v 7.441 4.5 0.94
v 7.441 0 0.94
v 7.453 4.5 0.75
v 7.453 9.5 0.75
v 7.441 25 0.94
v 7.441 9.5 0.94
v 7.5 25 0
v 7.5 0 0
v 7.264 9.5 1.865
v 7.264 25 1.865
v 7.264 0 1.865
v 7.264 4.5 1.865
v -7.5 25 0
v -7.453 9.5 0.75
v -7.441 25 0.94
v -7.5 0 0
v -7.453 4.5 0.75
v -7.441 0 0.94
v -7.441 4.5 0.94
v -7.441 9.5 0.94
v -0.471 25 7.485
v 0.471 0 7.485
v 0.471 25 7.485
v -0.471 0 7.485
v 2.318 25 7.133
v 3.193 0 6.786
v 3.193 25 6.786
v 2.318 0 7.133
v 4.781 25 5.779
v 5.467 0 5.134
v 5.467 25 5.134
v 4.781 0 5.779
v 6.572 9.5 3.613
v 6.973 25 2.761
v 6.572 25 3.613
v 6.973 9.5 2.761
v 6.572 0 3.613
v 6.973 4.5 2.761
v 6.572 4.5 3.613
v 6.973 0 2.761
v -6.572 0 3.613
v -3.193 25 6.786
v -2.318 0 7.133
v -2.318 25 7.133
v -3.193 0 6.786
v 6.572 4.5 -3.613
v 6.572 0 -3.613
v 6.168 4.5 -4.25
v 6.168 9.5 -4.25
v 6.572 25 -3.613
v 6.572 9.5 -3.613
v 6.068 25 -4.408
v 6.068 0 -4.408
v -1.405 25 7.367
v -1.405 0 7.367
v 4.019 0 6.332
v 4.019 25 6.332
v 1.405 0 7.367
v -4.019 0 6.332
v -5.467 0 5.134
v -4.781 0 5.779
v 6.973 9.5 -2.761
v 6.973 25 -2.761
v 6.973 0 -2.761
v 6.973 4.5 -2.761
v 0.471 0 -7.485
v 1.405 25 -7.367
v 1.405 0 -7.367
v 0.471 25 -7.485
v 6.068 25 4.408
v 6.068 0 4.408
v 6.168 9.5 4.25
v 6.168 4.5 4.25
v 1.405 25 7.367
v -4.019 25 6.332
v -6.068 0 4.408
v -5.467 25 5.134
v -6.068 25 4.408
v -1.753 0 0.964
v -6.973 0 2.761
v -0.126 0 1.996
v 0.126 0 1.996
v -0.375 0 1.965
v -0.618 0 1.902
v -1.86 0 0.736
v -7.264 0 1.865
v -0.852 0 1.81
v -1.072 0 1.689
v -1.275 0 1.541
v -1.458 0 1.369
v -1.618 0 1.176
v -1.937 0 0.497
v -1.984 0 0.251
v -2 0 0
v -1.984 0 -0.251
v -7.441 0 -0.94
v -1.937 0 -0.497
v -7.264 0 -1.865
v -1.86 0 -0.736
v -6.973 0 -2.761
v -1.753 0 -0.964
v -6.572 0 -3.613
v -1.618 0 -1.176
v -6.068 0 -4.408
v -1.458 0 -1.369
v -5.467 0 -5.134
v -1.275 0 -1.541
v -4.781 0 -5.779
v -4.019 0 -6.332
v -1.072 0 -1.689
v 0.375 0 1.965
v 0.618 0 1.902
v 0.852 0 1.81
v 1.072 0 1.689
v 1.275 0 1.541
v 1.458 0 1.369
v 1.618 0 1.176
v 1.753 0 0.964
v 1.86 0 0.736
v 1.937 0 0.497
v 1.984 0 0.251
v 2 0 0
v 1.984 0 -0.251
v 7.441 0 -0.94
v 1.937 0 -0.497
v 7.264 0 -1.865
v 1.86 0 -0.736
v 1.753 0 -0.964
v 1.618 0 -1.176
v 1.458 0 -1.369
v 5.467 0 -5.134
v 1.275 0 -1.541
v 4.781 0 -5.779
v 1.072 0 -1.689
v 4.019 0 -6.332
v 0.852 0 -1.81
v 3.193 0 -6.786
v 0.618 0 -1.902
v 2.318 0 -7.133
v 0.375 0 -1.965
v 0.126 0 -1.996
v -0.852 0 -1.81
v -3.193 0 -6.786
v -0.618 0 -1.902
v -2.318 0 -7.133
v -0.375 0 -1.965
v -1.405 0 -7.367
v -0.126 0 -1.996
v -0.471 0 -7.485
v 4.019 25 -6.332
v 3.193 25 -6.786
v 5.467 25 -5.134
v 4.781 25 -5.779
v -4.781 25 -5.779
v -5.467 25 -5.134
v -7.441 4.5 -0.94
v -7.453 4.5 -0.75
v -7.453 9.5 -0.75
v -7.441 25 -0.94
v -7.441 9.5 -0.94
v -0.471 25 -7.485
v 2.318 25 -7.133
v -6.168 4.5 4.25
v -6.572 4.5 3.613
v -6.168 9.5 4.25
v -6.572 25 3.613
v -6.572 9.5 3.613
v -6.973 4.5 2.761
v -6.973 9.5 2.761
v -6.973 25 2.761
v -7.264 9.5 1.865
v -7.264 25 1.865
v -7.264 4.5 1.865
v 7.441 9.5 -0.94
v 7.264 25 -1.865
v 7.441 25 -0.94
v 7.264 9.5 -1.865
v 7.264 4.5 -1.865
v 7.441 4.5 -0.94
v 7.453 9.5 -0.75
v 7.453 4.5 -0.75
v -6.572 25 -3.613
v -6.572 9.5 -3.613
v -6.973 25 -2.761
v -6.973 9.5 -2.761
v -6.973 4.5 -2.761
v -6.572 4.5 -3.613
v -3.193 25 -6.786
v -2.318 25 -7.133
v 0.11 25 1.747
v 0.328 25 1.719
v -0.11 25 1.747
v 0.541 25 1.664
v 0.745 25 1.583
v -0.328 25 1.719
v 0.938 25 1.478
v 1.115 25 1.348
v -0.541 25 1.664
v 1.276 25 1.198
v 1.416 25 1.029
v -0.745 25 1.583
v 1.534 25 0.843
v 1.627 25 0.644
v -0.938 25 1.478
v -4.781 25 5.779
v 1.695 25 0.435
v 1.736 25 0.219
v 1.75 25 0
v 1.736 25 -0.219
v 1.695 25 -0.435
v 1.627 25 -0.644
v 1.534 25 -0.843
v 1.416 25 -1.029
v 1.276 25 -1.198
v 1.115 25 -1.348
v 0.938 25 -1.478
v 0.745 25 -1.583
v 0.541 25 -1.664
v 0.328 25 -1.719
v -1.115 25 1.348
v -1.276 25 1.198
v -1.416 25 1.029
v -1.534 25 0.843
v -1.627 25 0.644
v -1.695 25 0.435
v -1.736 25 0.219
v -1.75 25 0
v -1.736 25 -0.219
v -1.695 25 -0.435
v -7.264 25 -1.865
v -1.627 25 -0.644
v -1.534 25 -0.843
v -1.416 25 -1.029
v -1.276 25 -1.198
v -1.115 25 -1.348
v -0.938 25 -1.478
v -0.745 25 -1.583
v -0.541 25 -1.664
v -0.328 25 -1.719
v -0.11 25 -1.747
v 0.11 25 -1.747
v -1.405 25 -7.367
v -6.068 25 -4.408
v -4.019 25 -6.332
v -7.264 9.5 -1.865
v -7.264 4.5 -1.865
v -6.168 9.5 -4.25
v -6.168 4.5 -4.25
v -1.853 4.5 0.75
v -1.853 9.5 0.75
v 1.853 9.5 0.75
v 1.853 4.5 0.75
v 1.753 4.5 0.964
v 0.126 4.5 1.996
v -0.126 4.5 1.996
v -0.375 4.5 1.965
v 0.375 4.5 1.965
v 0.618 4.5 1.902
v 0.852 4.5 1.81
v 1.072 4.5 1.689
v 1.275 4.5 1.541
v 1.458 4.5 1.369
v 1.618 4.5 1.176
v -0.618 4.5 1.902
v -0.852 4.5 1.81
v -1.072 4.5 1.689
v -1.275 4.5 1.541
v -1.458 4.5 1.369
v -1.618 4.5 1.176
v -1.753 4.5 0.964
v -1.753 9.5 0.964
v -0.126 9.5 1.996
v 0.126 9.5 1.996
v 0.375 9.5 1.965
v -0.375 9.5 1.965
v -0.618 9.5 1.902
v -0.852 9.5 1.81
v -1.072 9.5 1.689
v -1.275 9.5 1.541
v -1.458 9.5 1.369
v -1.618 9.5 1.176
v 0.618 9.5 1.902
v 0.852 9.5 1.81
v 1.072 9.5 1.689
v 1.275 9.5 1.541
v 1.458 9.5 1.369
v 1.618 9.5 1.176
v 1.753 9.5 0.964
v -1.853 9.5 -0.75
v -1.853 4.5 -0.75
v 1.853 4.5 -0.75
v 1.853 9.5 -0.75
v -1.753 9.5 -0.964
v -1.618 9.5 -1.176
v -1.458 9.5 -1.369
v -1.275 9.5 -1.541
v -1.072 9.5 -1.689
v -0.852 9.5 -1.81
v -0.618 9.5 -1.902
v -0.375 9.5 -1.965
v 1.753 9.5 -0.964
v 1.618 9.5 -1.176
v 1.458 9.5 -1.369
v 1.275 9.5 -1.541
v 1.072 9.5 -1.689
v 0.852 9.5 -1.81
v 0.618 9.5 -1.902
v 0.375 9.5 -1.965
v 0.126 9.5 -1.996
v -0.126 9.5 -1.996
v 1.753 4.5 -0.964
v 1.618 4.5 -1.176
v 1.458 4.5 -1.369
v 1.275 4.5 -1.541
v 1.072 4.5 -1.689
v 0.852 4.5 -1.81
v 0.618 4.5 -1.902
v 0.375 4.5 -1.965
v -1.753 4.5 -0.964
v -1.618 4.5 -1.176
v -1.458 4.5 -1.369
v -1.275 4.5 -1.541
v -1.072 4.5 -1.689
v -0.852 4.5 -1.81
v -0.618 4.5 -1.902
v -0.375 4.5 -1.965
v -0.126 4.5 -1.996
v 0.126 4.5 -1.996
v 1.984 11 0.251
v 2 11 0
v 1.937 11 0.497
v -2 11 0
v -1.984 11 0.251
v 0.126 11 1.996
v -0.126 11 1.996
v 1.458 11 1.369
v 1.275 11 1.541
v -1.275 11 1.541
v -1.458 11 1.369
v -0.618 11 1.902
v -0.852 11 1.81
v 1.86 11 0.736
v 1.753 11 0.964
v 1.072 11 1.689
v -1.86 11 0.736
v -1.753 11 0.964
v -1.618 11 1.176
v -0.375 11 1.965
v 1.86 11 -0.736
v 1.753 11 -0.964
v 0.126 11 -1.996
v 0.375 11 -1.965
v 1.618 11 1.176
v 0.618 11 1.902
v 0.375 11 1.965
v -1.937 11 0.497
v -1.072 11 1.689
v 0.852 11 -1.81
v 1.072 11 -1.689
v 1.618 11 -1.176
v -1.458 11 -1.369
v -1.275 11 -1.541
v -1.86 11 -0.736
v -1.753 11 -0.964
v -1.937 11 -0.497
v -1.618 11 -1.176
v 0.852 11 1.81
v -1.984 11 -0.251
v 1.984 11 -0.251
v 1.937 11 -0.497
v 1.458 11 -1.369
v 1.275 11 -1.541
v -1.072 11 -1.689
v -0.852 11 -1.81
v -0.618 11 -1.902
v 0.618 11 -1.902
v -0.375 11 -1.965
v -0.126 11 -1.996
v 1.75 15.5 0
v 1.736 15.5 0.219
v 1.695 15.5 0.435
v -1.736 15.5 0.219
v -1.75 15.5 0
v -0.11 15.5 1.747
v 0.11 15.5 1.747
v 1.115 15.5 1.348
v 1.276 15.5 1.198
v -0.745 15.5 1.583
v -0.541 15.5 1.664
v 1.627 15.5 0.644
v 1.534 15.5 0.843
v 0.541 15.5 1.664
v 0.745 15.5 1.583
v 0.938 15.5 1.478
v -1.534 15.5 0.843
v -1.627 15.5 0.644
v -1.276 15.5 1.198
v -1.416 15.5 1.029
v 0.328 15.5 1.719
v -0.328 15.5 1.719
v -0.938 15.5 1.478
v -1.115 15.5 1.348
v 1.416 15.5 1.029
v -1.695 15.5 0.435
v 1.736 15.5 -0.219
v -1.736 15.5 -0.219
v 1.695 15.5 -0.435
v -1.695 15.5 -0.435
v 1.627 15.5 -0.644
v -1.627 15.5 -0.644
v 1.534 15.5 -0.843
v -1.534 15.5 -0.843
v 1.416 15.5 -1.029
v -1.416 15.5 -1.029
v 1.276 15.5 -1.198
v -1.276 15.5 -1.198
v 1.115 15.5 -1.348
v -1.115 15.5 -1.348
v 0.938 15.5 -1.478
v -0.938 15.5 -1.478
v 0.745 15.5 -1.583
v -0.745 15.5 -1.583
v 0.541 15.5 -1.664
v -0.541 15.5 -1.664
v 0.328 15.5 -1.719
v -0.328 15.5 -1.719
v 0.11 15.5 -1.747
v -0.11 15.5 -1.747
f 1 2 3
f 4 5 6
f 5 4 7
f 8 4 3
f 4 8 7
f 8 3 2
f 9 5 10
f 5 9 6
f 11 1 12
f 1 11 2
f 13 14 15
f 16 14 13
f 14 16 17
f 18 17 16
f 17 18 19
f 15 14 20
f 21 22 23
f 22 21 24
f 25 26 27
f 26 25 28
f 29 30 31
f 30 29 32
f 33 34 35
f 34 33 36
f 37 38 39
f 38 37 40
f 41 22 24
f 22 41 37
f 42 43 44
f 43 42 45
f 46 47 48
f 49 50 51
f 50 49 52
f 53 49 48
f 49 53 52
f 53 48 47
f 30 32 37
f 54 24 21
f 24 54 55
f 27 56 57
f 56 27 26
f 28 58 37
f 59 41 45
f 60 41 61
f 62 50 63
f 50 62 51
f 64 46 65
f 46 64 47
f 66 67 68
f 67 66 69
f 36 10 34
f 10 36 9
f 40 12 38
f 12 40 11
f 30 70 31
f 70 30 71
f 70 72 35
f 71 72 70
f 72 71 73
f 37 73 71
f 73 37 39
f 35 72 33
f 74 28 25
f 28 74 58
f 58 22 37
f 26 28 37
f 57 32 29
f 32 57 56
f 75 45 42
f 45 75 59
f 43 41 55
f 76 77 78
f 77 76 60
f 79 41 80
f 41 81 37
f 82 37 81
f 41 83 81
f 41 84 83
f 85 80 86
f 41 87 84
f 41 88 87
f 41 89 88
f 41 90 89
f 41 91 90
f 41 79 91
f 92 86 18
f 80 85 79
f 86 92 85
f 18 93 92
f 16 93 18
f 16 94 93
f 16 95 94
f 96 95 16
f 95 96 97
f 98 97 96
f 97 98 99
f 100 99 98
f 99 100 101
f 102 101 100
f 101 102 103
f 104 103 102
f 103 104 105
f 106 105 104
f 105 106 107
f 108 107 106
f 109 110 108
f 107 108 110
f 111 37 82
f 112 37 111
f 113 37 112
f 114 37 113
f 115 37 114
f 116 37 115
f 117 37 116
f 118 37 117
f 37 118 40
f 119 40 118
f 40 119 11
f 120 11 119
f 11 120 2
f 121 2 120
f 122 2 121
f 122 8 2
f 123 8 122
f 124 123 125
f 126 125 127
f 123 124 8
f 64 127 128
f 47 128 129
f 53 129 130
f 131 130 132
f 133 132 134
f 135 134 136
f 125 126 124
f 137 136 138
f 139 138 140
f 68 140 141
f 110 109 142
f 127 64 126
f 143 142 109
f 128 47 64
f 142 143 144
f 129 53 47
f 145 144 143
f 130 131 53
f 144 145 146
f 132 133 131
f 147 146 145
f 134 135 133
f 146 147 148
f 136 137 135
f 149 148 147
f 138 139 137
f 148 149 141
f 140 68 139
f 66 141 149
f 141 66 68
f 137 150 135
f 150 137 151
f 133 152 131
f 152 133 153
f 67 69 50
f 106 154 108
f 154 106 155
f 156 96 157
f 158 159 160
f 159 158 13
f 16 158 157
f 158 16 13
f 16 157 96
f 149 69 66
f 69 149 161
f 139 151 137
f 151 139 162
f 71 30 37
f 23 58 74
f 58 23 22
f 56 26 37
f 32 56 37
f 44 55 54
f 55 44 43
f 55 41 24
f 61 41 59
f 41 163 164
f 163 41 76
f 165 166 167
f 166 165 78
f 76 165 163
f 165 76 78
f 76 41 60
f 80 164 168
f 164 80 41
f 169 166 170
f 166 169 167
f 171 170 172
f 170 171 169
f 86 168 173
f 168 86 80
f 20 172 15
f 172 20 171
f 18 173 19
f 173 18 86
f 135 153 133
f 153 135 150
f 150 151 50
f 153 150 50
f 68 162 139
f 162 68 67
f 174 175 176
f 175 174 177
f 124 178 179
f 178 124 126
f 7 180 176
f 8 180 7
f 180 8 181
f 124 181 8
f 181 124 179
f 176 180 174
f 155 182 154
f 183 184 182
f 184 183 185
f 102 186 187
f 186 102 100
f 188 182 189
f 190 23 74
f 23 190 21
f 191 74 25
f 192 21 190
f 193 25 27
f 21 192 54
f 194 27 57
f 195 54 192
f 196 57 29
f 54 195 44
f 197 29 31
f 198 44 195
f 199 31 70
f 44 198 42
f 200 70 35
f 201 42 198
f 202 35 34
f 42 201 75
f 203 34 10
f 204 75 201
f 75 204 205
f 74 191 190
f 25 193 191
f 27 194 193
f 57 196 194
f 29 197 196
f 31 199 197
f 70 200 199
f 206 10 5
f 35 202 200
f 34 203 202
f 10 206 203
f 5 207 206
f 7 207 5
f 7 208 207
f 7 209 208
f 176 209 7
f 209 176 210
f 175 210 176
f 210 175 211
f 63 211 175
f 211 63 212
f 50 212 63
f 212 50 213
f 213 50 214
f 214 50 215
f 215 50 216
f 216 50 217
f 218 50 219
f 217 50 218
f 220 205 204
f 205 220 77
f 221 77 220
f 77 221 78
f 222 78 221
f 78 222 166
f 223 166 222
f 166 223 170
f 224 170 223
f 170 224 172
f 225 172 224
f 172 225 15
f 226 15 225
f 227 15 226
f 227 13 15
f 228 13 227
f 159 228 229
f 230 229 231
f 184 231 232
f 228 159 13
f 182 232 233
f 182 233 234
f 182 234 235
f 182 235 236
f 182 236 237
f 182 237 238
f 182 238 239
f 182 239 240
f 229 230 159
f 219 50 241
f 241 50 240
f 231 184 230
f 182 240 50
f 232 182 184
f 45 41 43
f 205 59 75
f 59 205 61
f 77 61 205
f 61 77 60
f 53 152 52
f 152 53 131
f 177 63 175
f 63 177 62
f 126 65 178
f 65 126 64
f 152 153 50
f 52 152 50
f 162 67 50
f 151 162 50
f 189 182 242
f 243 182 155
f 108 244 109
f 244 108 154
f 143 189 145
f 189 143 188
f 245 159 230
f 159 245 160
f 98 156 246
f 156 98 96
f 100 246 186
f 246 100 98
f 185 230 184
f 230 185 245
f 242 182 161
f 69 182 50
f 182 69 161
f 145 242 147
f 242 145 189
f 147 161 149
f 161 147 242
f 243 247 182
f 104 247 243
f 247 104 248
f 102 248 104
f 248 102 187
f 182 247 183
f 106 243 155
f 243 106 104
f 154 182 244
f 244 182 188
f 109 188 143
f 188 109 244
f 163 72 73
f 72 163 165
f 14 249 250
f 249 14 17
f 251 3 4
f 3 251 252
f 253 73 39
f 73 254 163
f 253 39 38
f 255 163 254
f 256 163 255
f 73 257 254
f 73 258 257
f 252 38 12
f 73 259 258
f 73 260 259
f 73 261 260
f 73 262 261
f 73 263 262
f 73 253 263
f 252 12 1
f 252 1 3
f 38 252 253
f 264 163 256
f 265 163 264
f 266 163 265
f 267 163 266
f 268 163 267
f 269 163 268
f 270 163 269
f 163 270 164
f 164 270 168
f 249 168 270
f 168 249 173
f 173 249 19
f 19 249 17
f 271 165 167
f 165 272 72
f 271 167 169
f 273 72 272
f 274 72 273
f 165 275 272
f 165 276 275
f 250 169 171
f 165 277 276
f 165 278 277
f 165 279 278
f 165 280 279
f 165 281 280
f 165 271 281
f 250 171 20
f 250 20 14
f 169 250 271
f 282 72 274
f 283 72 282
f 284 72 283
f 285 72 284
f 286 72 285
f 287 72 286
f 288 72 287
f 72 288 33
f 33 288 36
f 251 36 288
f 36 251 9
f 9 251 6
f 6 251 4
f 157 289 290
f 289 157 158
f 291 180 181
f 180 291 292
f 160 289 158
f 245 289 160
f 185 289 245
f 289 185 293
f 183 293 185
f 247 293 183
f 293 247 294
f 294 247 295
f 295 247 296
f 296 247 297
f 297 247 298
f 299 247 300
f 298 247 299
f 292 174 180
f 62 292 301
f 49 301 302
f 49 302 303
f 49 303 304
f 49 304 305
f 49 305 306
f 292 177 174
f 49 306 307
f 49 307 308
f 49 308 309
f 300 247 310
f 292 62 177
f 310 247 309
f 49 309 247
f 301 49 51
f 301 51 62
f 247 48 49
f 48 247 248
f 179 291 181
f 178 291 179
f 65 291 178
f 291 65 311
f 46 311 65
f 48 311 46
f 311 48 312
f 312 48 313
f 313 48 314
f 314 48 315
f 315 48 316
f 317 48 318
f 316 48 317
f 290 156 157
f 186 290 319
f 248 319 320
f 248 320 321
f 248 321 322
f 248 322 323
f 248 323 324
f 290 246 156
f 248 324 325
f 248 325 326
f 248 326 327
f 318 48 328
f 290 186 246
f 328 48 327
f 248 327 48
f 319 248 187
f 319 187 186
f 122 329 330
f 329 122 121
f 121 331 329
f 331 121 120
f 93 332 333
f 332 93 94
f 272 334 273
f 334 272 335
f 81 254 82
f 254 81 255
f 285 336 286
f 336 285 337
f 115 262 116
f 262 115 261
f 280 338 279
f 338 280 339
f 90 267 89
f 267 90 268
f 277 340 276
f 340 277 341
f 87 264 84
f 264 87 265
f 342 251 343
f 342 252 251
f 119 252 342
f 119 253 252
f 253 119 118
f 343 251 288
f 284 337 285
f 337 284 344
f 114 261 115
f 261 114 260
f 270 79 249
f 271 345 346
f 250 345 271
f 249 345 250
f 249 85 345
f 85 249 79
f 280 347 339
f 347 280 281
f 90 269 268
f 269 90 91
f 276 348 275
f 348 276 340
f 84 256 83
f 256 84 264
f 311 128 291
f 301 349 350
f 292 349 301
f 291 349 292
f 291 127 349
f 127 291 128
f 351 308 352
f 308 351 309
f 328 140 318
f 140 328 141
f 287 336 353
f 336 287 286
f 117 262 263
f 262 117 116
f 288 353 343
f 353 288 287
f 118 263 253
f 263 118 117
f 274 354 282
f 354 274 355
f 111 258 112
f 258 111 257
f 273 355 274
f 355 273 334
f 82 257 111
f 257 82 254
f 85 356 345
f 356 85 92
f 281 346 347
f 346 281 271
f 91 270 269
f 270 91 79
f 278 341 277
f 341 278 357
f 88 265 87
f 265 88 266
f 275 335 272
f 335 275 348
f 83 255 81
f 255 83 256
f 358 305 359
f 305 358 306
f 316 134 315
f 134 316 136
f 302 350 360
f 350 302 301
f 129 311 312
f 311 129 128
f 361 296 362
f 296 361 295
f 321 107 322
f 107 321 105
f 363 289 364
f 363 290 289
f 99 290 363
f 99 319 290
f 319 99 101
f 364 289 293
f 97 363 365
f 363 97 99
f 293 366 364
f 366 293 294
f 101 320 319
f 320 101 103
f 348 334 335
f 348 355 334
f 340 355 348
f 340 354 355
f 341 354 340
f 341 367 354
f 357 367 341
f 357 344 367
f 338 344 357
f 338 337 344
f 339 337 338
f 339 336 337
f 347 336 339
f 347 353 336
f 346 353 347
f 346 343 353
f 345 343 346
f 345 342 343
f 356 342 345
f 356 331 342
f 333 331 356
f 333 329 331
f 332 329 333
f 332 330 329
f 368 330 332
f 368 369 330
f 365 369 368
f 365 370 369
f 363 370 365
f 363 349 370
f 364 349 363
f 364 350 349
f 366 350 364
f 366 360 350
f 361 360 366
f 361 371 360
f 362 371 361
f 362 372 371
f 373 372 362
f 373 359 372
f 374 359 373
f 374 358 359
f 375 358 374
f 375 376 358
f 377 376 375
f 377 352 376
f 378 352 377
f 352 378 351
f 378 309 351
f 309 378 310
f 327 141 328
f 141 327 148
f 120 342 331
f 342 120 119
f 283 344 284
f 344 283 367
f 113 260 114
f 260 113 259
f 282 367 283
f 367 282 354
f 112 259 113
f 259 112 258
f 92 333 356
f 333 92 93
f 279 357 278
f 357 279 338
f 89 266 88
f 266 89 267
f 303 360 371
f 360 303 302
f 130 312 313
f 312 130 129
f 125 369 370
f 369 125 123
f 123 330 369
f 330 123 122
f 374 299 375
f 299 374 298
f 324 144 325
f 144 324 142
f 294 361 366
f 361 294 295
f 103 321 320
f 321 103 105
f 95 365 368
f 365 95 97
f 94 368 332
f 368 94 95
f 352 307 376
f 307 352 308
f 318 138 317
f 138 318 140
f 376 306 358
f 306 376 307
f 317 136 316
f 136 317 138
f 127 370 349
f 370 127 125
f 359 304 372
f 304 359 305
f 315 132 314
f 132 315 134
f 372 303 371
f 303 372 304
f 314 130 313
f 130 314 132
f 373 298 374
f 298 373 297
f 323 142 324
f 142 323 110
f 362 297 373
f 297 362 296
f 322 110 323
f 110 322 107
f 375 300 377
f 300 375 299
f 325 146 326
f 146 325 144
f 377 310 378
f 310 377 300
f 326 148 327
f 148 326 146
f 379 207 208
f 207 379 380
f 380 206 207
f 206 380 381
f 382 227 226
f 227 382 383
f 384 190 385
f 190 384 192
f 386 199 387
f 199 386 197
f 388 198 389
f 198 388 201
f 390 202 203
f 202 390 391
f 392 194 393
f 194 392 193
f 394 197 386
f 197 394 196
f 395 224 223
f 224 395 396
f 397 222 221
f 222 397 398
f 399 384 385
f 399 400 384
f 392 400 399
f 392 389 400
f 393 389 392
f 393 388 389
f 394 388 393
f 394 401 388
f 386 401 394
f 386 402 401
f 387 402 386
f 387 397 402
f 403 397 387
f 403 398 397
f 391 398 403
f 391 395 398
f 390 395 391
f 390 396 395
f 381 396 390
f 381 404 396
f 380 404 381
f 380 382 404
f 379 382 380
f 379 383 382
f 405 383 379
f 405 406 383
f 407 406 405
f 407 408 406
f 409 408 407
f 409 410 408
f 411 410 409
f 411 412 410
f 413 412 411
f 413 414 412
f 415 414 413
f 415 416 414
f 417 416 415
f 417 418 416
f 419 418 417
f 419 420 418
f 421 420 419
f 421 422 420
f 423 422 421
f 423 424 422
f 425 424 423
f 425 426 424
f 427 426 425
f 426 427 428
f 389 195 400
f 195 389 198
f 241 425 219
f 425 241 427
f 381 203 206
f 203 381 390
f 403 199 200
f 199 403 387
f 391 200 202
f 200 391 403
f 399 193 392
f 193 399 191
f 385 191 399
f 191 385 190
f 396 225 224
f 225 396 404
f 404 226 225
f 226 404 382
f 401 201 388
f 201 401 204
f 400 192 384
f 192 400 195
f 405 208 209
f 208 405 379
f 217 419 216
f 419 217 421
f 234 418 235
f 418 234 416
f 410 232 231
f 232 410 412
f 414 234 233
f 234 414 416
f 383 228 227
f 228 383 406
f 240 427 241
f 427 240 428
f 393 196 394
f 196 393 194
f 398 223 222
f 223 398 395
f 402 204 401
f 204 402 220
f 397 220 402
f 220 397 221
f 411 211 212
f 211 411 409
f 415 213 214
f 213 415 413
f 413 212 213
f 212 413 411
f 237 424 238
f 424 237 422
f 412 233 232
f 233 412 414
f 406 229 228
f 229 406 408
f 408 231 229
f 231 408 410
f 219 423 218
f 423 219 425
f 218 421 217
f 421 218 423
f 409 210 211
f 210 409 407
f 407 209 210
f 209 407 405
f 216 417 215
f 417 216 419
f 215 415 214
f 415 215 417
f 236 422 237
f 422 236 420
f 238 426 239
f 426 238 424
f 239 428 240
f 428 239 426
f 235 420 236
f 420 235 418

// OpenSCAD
$fn = 50;

module GraphiteBar()
{
    rotate([90, 0, 0])
    cylinder(d = 4.0, h = 20, center = true);
}

module SandSupport()
{   
    d = 20;
    w = 3.0;
    l = 4.9;
    
    difference()
    {
        cube([20, l, w], center = true);
        
        translate([-8, 0, 0])
        cube([2, 3, w*1.1], center = true);
        
        translate([8, 0, 0])
        cube([2, 3, w*1.1], center = true);
    }
}

module Sharpener()
{
    d = 15;
    h = 25;
    
    new_width = 1.5;
    
    difference()
    {
        translate([0, h/2, 0])
        difference()
        {
            
            rotate([90, 0, 0])
            cylinder(d = d, h = h, center = true);
            
            w = 3.5;
            l = 5;
            translate([0, l/2 - 8, (w + new_width)/2])
            cube([d*1.1, l, w], center = true);
            
            translate([0, l/2 - 8, -(w + new_width)/2 ])
            cube([d*1.1, l, w], center = true);
            
        }
        translate([0, 1, 0])
        GraphiteBar();
        
        translate([0, 5/2 + 25 - 7, 0])
        rotate([90, 0, 0])
        #cylinder(d = 3.5, h = 10, center = true);
    }
}

//SandSupport();

//GraphiteBar();
Sharpener();
